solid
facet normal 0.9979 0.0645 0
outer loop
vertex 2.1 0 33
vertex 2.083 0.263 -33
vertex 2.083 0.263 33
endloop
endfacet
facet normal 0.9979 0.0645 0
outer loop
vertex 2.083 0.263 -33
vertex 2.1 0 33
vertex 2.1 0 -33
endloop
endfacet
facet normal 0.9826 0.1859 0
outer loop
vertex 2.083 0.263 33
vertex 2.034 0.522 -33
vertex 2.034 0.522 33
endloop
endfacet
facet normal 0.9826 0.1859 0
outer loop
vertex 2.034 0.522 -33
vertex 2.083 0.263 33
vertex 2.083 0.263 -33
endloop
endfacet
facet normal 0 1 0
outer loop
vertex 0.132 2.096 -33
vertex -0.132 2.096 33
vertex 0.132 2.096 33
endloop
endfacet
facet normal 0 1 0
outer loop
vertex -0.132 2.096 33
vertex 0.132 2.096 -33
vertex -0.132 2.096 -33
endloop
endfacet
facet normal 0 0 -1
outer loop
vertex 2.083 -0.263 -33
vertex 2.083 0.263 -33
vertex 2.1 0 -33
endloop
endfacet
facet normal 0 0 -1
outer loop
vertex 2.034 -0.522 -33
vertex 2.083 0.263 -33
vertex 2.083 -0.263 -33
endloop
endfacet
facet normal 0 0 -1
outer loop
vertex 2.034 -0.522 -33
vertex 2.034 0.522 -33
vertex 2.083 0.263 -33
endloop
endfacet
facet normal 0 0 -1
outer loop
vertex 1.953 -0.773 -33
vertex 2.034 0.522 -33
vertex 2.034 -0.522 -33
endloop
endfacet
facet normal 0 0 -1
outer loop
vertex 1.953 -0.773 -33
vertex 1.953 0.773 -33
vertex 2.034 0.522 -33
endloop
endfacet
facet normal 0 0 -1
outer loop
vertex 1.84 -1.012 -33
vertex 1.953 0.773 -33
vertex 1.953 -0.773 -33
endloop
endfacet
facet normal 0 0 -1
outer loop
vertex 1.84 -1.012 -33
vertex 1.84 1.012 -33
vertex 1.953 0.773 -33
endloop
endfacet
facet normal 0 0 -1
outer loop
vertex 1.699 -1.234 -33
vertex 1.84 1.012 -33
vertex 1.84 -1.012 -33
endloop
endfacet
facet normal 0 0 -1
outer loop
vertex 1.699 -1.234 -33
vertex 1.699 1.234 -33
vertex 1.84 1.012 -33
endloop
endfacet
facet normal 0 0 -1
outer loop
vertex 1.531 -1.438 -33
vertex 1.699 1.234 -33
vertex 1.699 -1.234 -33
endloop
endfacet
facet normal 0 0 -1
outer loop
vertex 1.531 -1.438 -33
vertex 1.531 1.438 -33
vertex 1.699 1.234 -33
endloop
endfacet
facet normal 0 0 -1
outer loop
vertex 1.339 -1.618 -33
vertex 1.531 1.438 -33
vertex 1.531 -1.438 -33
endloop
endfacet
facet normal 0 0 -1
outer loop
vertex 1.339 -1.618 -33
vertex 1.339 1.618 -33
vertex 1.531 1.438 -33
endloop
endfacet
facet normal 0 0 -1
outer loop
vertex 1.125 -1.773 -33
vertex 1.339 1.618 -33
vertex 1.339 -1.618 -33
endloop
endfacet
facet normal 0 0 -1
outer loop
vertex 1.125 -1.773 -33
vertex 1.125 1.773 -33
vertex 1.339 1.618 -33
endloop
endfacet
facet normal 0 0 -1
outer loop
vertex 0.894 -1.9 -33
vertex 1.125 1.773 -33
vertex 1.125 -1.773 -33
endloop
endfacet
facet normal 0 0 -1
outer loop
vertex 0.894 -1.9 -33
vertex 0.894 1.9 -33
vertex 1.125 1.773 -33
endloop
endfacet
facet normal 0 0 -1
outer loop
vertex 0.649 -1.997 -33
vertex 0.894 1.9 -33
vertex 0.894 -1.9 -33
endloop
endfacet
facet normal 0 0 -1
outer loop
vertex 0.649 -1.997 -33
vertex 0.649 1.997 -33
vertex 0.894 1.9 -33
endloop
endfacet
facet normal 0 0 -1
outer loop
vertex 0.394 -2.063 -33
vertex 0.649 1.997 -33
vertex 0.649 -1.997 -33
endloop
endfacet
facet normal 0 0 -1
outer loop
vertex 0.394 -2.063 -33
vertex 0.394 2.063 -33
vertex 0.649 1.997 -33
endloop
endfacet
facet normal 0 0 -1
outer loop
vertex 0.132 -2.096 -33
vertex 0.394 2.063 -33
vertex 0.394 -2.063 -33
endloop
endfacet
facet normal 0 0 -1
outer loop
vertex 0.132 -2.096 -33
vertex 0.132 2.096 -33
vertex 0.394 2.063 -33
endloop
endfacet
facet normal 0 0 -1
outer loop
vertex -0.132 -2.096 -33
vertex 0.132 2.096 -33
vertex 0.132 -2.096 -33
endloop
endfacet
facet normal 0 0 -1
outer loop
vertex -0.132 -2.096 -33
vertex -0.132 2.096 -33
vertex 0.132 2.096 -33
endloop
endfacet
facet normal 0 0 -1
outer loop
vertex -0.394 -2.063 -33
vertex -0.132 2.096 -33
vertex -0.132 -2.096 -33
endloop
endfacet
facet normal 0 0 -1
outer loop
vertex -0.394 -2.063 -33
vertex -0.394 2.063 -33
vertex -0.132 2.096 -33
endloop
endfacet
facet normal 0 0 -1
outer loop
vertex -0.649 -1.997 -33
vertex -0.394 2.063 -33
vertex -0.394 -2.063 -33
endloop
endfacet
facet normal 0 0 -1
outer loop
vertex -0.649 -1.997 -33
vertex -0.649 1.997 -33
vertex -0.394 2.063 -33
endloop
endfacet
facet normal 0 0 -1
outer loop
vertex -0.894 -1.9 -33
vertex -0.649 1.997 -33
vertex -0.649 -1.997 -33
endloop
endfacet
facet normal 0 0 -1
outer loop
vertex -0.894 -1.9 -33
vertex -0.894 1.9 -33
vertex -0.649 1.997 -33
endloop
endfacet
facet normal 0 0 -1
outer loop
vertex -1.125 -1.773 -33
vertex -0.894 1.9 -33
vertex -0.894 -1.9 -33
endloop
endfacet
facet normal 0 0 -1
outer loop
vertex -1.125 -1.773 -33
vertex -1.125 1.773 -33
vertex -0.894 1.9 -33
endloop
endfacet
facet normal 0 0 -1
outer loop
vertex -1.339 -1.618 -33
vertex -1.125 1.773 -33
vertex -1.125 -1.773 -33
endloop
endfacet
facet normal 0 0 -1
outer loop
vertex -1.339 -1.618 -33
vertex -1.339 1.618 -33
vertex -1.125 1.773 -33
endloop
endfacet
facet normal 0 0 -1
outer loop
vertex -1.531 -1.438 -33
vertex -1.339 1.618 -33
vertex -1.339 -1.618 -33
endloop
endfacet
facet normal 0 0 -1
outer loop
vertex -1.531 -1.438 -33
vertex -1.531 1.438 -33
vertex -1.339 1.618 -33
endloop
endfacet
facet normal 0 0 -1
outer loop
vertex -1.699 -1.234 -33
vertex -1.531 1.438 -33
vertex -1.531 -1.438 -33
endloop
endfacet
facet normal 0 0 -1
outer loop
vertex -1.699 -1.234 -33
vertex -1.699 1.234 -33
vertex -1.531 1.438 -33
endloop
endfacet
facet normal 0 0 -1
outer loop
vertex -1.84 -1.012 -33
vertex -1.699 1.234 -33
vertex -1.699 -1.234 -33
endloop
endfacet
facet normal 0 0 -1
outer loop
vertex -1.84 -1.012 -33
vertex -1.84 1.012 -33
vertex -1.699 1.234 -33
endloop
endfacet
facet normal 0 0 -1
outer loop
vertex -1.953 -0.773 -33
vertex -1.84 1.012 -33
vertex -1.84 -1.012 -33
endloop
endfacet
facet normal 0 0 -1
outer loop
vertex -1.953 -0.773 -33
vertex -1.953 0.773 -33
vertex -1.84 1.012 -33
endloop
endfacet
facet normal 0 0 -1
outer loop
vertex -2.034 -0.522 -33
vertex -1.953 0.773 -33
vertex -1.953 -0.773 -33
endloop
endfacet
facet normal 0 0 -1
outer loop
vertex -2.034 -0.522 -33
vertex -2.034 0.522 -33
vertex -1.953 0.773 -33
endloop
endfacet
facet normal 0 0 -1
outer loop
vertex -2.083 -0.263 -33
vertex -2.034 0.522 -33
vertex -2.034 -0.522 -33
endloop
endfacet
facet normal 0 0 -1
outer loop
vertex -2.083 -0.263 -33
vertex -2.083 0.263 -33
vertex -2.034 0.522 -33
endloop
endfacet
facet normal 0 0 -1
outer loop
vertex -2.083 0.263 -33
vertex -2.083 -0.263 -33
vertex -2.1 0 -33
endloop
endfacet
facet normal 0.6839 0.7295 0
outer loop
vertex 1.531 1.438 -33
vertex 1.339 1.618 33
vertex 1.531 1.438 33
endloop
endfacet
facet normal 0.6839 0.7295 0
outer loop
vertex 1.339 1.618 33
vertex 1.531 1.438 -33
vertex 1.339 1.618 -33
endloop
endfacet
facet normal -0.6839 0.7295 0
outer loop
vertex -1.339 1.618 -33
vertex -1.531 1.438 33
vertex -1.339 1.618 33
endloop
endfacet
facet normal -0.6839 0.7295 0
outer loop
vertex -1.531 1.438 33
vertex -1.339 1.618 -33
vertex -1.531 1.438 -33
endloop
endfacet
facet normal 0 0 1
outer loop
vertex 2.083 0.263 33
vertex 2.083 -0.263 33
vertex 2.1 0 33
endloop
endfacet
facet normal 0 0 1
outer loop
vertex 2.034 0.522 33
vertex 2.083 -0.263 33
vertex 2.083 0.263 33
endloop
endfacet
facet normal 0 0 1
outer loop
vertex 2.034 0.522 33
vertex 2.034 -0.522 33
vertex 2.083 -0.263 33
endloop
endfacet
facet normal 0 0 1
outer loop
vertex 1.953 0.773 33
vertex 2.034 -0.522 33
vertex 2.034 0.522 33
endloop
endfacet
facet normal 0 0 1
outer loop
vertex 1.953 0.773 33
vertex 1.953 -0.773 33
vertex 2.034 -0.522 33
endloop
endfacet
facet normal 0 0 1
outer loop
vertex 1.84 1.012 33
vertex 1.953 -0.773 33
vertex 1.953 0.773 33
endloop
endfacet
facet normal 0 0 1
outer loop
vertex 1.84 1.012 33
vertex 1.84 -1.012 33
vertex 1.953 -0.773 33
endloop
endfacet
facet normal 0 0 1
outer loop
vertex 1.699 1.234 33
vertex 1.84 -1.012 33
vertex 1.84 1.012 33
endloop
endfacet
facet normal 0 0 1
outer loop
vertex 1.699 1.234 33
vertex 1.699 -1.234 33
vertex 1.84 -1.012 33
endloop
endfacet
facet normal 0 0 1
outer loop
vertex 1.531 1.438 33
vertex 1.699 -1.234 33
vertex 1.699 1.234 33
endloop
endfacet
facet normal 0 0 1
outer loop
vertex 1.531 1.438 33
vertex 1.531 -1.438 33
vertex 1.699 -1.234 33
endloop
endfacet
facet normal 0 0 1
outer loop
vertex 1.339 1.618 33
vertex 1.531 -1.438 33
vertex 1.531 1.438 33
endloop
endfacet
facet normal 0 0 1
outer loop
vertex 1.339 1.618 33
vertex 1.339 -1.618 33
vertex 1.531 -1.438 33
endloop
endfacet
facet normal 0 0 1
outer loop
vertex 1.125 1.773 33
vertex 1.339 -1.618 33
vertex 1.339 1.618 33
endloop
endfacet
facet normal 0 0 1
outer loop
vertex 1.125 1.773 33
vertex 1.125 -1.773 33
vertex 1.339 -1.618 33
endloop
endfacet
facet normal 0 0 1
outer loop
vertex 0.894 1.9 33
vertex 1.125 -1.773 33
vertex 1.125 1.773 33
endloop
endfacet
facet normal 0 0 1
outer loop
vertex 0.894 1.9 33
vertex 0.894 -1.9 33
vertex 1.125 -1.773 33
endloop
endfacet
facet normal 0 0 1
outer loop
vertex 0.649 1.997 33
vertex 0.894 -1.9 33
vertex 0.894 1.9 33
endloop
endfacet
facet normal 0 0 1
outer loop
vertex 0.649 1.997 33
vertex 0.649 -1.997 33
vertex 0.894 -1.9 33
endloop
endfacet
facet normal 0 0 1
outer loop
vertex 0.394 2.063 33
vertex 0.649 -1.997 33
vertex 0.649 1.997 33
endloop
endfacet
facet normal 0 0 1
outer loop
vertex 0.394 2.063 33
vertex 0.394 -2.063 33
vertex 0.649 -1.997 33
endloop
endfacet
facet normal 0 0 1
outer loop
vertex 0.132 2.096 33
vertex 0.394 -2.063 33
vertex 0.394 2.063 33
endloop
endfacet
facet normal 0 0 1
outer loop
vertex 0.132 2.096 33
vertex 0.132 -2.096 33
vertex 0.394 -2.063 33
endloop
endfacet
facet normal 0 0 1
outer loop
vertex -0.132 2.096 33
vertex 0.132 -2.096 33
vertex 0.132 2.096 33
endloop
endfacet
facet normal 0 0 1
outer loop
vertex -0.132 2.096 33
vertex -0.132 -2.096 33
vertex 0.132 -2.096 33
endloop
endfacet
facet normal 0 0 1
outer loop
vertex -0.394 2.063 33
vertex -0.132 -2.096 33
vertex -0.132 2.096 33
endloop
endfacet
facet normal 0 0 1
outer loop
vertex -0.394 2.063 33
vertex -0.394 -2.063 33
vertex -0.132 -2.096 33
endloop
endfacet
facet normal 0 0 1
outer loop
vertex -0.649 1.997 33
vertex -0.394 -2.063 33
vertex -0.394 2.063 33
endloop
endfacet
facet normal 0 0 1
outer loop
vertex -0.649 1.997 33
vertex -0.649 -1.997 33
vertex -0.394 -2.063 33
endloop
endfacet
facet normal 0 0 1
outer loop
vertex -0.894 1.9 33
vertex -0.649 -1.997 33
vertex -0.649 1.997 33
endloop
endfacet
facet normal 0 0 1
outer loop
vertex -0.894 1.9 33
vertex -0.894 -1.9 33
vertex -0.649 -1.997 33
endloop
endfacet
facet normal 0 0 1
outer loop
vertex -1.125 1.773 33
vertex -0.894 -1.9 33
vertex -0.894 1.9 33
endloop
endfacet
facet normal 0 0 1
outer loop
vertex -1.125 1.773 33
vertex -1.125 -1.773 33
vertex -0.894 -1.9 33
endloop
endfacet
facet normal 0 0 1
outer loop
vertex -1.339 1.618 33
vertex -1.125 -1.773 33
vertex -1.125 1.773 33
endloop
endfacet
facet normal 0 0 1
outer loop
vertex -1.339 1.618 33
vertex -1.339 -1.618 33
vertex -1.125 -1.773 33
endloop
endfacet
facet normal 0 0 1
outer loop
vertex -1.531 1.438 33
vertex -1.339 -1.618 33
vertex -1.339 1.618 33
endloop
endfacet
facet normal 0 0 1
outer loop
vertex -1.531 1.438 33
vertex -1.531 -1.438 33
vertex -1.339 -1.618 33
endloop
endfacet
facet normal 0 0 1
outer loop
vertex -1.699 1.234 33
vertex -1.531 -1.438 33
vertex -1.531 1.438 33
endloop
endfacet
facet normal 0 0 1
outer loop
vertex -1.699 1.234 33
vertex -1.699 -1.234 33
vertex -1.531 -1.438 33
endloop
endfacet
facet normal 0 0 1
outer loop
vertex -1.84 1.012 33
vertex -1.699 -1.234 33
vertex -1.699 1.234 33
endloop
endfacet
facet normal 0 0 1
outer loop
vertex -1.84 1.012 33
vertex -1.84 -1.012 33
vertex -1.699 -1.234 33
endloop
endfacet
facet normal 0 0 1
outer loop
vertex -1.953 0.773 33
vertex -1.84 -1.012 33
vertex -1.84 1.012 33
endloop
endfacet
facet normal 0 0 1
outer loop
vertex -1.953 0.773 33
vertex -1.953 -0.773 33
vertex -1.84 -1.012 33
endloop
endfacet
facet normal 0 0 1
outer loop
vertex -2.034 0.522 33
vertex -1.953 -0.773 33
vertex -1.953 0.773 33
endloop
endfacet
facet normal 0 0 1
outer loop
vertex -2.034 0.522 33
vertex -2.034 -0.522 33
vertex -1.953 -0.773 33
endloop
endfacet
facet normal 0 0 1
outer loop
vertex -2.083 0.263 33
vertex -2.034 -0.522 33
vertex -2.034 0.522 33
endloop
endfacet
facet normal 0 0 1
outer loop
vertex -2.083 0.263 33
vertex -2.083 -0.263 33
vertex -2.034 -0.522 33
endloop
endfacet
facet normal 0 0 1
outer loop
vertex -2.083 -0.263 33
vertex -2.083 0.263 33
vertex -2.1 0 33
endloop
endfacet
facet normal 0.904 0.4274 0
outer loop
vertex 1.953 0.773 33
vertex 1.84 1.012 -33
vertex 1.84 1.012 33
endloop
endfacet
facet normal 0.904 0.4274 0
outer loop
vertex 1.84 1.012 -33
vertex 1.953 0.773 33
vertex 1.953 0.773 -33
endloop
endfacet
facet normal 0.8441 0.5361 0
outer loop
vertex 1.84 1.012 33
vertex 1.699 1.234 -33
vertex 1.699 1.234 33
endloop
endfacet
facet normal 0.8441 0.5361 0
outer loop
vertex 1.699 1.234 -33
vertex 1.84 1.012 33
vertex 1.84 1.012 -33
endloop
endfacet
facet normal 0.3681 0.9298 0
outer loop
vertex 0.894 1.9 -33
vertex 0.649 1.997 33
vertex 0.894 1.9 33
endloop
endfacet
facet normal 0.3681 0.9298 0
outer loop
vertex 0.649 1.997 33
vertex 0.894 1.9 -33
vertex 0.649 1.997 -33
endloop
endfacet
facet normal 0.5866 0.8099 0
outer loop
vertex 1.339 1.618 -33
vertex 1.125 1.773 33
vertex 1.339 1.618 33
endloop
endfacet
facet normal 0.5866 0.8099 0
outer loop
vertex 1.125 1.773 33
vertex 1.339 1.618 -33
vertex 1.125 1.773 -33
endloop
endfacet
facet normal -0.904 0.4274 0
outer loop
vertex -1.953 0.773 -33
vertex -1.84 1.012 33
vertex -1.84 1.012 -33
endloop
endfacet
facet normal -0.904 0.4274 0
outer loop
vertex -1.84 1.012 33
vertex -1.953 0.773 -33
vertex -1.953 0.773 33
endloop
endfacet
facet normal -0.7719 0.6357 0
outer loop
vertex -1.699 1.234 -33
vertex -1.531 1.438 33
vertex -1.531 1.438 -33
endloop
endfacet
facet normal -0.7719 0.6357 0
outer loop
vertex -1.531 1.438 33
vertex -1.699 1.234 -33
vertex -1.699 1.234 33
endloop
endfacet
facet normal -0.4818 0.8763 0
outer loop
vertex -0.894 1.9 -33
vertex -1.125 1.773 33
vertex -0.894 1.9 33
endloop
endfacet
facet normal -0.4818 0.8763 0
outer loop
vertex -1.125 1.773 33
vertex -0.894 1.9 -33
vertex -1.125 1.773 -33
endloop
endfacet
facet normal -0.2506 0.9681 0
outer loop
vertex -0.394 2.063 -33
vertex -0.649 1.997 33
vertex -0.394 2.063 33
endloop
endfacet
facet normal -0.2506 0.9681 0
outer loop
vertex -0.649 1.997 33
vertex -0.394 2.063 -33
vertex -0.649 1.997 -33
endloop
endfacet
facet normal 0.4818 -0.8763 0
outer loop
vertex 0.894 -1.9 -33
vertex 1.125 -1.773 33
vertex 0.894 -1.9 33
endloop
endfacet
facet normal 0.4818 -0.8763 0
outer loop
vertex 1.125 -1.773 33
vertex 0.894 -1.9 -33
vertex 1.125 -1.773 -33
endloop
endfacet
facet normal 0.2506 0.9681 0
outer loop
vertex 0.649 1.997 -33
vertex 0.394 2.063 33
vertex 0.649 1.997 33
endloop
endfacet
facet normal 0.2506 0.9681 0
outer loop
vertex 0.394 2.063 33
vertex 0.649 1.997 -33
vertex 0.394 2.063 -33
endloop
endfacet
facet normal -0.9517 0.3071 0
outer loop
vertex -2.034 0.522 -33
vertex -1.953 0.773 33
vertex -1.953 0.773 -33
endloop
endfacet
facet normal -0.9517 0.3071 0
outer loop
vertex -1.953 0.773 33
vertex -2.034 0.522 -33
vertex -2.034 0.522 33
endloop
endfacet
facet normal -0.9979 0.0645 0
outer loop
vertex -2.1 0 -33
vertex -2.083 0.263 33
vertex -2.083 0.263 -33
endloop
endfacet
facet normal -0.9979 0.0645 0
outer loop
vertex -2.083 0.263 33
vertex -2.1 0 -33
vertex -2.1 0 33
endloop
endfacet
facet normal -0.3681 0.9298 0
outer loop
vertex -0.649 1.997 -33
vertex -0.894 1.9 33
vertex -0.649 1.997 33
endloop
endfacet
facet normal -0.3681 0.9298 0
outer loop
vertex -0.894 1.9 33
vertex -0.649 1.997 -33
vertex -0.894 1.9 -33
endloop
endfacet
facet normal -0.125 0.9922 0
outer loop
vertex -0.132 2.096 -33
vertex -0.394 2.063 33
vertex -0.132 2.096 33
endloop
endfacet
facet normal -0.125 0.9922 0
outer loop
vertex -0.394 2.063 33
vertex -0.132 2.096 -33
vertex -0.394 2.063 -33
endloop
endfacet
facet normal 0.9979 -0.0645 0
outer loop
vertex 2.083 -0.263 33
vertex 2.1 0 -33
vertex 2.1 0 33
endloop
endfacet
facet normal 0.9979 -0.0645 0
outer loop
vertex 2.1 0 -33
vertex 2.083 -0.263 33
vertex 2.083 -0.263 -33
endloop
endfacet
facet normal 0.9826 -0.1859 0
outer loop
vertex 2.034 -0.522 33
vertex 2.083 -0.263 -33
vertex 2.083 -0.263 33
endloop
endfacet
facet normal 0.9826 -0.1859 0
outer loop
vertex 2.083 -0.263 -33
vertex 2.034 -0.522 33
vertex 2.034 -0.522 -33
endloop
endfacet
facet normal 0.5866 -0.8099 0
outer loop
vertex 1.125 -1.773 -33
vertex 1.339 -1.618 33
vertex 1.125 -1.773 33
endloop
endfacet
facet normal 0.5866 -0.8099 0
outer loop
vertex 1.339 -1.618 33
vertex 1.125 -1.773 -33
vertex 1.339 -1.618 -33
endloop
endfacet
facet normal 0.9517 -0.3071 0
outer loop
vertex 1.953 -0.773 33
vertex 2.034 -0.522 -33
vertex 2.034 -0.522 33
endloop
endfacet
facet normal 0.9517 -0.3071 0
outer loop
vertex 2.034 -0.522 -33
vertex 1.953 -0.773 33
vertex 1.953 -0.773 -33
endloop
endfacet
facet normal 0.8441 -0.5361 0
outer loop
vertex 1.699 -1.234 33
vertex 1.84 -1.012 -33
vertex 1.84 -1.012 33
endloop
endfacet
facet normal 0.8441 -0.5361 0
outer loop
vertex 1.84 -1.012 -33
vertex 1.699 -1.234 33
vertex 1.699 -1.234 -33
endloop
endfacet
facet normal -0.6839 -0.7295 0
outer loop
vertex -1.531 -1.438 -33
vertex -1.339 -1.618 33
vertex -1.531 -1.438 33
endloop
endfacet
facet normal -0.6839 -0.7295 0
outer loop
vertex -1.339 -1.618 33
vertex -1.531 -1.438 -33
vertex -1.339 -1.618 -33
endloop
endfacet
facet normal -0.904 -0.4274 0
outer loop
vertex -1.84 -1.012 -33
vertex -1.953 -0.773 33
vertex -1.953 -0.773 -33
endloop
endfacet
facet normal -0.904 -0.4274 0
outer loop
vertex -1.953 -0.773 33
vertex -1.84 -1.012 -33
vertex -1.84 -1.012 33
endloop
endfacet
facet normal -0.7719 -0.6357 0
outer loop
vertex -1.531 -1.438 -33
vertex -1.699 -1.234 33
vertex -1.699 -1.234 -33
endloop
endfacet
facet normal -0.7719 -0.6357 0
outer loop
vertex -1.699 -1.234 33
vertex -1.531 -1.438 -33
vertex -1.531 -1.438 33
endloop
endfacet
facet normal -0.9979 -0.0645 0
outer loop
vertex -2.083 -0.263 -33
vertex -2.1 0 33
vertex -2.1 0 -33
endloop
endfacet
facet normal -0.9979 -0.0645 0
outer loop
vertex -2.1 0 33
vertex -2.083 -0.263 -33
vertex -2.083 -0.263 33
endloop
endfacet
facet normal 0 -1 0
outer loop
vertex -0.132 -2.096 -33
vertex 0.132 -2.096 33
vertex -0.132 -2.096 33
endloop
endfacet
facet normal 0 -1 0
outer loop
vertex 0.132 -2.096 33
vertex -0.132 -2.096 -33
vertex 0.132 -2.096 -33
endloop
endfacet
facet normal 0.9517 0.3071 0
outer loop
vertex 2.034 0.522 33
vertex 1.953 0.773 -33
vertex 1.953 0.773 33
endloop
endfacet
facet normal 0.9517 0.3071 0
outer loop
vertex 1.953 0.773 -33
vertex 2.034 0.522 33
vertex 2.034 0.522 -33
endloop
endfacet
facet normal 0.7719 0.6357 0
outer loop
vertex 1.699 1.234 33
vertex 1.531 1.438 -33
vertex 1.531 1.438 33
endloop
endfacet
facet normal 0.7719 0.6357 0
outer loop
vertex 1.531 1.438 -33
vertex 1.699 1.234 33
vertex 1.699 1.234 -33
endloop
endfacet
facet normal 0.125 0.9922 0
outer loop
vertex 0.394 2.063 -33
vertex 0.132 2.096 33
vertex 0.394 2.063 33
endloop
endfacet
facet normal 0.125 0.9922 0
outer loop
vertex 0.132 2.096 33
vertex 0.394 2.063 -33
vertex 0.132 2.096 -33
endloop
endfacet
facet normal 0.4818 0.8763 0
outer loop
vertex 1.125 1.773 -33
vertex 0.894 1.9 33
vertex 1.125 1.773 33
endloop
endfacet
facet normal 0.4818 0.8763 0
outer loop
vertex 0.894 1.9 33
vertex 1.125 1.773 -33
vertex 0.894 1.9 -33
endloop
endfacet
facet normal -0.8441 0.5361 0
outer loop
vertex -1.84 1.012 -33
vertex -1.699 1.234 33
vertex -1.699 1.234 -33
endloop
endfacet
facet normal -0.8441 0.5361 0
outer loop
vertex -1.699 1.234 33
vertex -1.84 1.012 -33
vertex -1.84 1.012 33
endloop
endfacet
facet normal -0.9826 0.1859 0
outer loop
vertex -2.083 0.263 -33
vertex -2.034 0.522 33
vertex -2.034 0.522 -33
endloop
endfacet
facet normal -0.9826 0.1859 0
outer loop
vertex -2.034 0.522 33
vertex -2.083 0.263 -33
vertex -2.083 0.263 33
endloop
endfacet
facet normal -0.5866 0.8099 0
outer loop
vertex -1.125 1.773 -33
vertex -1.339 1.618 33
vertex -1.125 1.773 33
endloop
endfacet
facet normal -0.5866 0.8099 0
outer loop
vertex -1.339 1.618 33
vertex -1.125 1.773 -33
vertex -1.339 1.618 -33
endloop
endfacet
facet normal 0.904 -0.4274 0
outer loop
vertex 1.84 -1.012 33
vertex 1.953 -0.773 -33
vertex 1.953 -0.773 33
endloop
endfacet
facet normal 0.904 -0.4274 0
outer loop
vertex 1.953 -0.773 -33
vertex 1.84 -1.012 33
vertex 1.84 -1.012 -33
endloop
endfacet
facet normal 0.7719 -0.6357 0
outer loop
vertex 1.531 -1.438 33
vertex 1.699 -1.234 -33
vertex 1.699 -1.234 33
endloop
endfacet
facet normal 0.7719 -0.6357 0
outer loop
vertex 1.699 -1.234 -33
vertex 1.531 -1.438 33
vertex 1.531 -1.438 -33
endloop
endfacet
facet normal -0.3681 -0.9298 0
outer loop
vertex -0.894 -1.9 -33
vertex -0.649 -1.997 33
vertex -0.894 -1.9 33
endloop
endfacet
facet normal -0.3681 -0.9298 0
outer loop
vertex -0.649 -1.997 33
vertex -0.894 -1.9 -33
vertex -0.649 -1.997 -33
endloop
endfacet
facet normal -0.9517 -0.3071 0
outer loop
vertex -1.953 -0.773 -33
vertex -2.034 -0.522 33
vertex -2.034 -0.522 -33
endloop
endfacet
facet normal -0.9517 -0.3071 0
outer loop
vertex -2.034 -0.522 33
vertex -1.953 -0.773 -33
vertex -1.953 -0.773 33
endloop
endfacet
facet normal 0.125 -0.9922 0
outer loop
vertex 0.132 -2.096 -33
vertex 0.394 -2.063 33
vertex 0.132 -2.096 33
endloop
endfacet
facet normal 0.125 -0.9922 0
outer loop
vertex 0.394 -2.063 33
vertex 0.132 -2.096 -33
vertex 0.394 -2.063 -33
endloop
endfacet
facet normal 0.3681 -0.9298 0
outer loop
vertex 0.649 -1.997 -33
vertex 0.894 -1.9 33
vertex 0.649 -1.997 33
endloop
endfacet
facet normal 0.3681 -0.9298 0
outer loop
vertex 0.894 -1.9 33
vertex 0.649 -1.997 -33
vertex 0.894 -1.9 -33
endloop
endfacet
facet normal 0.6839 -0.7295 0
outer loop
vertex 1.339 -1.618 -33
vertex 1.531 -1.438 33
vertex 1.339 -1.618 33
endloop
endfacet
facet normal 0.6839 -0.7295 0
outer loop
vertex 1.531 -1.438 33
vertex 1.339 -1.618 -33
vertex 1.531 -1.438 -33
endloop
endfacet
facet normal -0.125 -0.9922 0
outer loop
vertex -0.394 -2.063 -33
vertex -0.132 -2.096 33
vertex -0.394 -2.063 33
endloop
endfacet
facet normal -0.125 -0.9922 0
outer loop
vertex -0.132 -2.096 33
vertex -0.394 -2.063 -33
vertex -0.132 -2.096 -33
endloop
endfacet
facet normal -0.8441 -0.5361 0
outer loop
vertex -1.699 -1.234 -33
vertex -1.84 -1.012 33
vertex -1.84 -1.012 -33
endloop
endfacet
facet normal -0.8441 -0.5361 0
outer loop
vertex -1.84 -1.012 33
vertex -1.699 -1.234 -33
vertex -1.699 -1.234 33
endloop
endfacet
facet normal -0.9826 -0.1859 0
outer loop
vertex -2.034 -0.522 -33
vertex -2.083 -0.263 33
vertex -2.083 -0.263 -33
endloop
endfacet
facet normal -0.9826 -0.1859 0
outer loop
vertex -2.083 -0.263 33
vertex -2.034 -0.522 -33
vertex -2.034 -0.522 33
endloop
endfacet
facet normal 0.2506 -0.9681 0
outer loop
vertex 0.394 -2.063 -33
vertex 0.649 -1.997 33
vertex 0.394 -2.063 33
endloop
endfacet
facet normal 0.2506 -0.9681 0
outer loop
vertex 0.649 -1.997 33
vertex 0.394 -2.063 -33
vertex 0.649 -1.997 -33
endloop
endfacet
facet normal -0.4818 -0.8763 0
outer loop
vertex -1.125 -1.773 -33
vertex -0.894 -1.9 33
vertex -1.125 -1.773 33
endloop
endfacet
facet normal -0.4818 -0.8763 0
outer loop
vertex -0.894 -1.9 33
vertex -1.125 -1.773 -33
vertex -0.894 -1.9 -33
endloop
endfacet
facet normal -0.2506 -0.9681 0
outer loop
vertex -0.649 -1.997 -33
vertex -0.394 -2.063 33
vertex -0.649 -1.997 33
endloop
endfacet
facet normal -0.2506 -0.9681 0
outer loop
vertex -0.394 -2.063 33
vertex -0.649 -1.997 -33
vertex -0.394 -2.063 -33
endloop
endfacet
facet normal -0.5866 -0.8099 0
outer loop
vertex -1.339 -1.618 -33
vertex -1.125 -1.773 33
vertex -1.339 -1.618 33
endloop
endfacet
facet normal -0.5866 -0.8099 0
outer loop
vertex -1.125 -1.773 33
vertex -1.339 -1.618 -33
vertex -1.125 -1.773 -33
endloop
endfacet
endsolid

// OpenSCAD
$fn = 50;


difference() {
	union() {
		translate(v = [0, 0, -33.0000000000]) {
			cylinder(h = 66, r = 2.1000000000);
		}
	}
	union() {
		translate(v = [0, 0, -100.0000000000]) {
			cylinder(h = 200, r = 0);
		}
	}
}
